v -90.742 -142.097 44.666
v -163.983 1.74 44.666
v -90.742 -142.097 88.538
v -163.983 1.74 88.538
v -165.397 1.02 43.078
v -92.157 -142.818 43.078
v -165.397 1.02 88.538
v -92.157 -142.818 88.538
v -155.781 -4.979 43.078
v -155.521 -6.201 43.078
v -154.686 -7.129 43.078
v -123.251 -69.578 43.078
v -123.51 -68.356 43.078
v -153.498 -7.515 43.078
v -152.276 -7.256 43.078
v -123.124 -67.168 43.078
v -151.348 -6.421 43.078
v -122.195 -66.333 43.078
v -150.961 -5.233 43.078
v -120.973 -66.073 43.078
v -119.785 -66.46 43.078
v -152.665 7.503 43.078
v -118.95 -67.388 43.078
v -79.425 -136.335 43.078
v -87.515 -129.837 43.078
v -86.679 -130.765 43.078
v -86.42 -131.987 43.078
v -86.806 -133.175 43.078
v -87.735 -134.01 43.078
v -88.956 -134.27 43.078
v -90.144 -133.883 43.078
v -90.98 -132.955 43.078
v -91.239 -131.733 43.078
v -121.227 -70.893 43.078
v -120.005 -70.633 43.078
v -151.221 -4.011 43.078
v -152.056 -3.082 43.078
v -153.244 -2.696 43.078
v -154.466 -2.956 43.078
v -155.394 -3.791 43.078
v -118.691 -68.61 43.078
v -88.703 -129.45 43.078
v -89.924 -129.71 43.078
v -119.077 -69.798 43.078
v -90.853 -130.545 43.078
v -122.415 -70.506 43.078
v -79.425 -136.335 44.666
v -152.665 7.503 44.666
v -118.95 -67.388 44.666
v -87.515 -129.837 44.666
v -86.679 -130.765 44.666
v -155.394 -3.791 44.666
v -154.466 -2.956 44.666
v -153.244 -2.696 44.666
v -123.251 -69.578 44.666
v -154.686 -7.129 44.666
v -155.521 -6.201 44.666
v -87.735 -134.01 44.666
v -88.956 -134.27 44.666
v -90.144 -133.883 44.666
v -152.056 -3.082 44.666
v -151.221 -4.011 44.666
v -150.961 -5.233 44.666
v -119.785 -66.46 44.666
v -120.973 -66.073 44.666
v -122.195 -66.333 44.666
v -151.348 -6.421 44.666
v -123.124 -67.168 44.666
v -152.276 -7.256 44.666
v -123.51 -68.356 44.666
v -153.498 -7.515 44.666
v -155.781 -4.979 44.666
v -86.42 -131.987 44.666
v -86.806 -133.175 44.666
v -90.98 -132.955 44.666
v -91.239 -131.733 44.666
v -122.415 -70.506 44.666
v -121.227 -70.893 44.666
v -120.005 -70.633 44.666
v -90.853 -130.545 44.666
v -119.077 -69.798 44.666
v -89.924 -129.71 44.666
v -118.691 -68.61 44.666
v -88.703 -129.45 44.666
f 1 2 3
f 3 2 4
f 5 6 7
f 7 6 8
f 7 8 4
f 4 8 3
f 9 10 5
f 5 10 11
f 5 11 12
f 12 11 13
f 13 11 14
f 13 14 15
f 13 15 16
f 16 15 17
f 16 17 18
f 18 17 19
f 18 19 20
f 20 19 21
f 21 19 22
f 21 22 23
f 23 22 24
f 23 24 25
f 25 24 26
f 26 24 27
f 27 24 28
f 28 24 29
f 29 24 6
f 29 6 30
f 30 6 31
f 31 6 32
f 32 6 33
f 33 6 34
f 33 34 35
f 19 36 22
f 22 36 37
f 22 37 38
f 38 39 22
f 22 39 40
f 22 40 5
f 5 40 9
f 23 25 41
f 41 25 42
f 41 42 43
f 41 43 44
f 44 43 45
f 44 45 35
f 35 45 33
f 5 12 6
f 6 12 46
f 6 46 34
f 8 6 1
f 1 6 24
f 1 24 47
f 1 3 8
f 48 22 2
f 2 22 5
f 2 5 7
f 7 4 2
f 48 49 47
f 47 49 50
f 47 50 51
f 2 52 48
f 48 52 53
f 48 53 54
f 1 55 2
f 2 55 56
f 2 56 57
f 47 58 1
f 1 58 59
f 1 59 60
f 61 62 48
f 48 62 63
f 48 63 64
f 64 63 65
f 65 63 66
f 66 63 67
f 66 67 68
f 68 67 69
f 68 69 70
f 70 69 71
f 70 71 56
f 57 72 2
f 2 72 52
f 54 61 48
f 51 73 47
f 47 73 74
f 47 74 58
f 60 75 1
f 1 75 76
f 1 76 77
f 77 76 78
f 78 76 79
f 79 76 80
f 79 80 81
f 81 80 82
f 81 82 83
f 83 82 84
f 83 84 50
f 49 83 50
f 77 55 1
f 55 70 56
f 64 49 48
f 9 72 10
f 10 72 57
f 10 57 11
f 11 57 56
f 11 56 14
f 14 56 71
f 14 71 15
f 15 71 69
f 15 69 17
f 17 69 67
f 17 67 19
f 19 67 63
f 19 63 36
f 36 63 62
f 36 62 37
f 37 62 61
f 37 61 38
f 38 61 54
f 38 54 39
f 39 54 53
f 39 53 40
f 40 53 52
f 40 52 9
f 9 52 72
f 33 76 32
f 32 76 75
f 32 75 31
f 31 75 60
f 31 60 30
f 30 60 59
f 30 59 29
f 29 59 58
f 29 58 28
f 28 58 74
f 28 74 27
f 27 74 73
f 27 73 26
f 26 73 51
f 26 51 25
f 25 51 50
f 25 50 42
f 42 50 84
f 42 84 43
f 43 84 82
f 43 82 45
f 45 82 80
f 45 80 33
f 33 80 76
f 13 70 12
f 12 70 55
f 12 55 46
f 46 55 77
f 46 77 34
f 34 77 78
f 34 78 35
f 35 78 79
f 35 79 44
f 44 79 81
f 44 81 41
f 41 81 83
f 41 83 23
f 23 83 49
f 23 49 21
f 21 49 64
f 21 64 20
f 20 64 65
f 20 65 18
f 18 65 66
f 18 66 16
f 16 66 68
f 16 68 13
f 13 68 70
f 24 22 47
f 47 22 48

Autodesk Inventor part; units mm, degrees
ref_plane "Work Plane1" through (-105.5469, -33.8995, 0) normal (0, 0, 1) x (1, 0, 0)
sketch "Sketch1" plane through (-105.5469, -33.8995, 0) normal (0, 0, 1) x (1, 0, 0)
  circle A0 centre (51.4164, 20.6909) radius 2.413 projected
  circle A1 centre (61.5426, -29.0897) radius 2.413 projected
  circle A2 centre (41.2902, 70.4714) radius 2.413 projected
  circle A3 centre (71.6688, -78.8702) radius 2.413 projected
  circle A4 centre (27.8827, -36.0288) radius 3.175 projected
  line L0 (21.5564, -145.7309) -> (-91.4082, 76.2381) projected
  line L1 (59.5069, 74.2446) -> (98.755, -118.7966) projected
  line L2 (15.2228, 144.056) -> (44.9436, 105.9012) projected
  line L3 (63.6348, -131.723) -> (58.903, -119.9375) projected
  line L4 (53.0129, -122.3028) -> (57.7447, -134.0883) projected
  arc A5 (3.7348, 135.3868) -> (-79.7406, 82.2913) centre (-35.4587, 104.8391) ccw
  line L5 (3.7348, 135.3868) -> (33.4679, 97.2384)
  arc A6 (45.3974, 71.3204) -> (33.4679, 97.2384) centre (-15.7425, 58.8835) ccw
  line L6 (45.3974, 71.3204) -> (84.6647, -121.7179)
  arc A7 (33.2723, -139.6562) -> (84.6647, -121.7179) centre (57.7489, -127.193) ccw
  arc A8 (2.9524, 134.777) -> (-78.8566, 82.7414) centre (-35.4587, 104.8391) ccw
  line L7 (2.9524, 134.777) -> (32.6855, 96.6286)
  arc A9 (44.4253, 71.1227) -> (32.6855, 96.6286) centre (-15.7425, 58.8835) ccw
  line L8 (44.4253, 71.1227) -> (83.6926, -121.9156)
  arc A10 (34.1563, -139.2061) -> (83.6926, -121.9156) centre (57.7489, -127.193) ccw
  line L9 (34.1563, -139.2061) -> (-78.8566, 82.7414)
  arc A11 (-4.5602, 128.9216) -> (-70.3686, 87.0634) centre (-35.4587, 104.8391) ccw
  line L10 (-4.5602, 128.9216) -> (25.1729, 90.7732)
  arc A12 (35.0915, 69.224) -> (25.1729, 90.7732) centre (-15.7425, 58.8835) ccw
  line L11 (35.0915, 69.224) -> (74.3588, -123.8143)
  arc A13 (42.6443, -134.8841) -> (74.3588, -123.8143) centre (57.7489, -127.193) ccw
  line L12 (42.6443, -134.8841) -> (-70.3686, 87.0634)
  arc A14 (5.4566, 136.7288) -> (-81.686, 81.3007) centre (-35.4587, 104.8391) ccw
  line L13 (5.4566, 136.7288) -> (35.1897, 98.5804)
  arc A15 (47.5366, 71.7556) -> (35.1897, 98.5804) centre (-15.7425, 58.8835) ccw
  line L14 (47.5366, 71.7556) -> (86.8039, -121.2827)
  arc A16 (31.327, -140.6467) -> (86.8039, -121.2827) centre (57.7489, -127.193) ccw
  line L15 (31.327, -140.6467) -> (-81.686, 81.3007)
  circle A17 centre (57.7489, -127.193) radius 44.45
  circle A18 centre (-35.4587, 104.8391) radius 69.85
  circle A19 centre (-47.8242, 28.7936) radius 2.413 projected
  circle A20 centre (-15.5534, -34.5834) radius 2.413 projected
  circle A21 centre (16.7174, -97.9605) radius 2.413 projected
  line L16 (-33.1344, 24.0942) -> (34.7456, 18.5458) projected
  line L17 (36.5081, 12.9323) -> (-6.2049, -22.3208) projected
  line L18 (-20.7511, -20.2117) -> (-39.1333, 15.9083) projected
  line L19 (38.3036, 25.8999) -> (-20.4951, 30.706) projected
  line L20 (-21.5821, 36.7465) -> (30.7819, 61.2351) projected
  line L21 (44.0707, 55.5202) -> (48.097, 35.7165) projected
  line L22 (-53.0081, 43.1715) -> (-61.3301, 59.5239) projected
  line L23 (17.8998, 109.9146) -> (30.1007, 94.2514) projected
  line L24 (27.5547, 68.1378) -> (-5.8444, 52.5185) projected
  line L25 (27.1825, -114.3985) -> (25.3807, -110.8581) projected
  line L26 (32.1964, -96.6363) -> (38.137, -94.5724) projected
  line L27 (74.4344, -93.8236) -> (75.2107, -97.6416) projected
  line L28 (50.495, -96.7953) -> (49.4394, -94.1661) projected
  line L29 (51.3425, -89.9843) -> (60.23, -86.8964) projected
  line L30 (-10.1341, 54.212) -> (-12.6231, 60.4113) projected
  line L31 (-19.6913, 57.573) -> (-16.9128, 50.6526) projected
  line L32 (-18.5132, 46.5938) -> (-35.734, 38.5403) projected
  line L33 (42.124, -96.3889) -> (43.4268, -99.6336) projected
  arc A22 (40.3328, 7.2327) -> (41.7343, 8.6241) centre (33.4597, 15.5569) ccw projected
  arc A23 (45.6191, 9.409) -> (41.7343, 8.6241) centre (44.1679, 6.585) ccw projected
  arc A24 (45.6191, 9.409) -> (50.3997, 8.0475) centre (51.4164, 20.6909) ccw projected
  arc A25 (53.2564, 5.5162) -> (50.3997, 8.0475) centre (50.1452, 4.8827) ccw projected
  line L34 (53.2564, 5.5162) -> (57.2026, -13.8642) projected
  arc A26 (55.534, -17.3261) -> (57.2026, -13.8642) centre (54.0915, -14.4977) ccw projected
  arc A27 (55.534, -17.3261) -> (49.5198, -23.895) centre (61.311, -28.6529) ccw projected
  arc A28 (46.8024, -25.8738) -> (49.5198, -23.895) centre (46.5755, -22.7069) ccw projected
  line L35 (46.8024, -25.8738) -> (37.6772, -26.5277) projected
  arc A29 (35.5367, -25.8944) -> (37.6772, -26.5277) centre (37.4502, -23.3608) ccw projected
  arc A30 (35.5367, -25.8944) -> (18.8618, -27.0893) centre (27.8827, -36.0288) ccw projected
  arc A31 (16.8336, -28.0213) -> (18.8618, -27.0893) centre (16.6066, -24.8545) ccw projected
  line L36 (16.8336, -28.0213) -> (0.7655, -29.1728) projected
  arc A32 (-0.3587, -26.3652) -> (0.7655, -29.1728) centre (0.652, -27.5893) ccw projected
  line L37 (-0.3587, -26.3652) -> (40.3328, 7.2327) projected
  arc A33 (12.0706, -61.7398) -> (8.1483, -51.9706) centre (20.8352, -52.5488) ccw projected
  line L38 (25.9855, -70.6908) -> (17.4507, -83.8024) projected
  line L39 (11.5059, -83.5949) -> (-6.8763, -47.4749) projected
  line L40 (-0.2859, -37.1185) -> (-0.1921, -37.1119) projected
  line L41 (74.8789, -123.628) -> (78.6564, -122.8604) projected
  line L42 (0.38, 132.4063) -> (2.0588, 130.251) projected
  line L43 (38.7029, -137.0353) -> (37.8849, -135.428) projected
  line L44 (38.579, -133.2932) -> (44.3373, -130.3617) projected
  line L45 (12.0706, -61.7398) -> (13.7631, -65.9552) projected
  line L46 (17.8911, -67.7189) -> (22.1428, -66.0115) projected
  line L47 (2.9792, -39.0961) -> (8.1483, -51.9706) projected
  ellipse E0 centre (-34.8429, 105.035) end of major axis (-54.1736, 165.5211) minor radius 63.4728 (15.2228, 144.056) -> (-91.4082, 76.2381) ccw projected
  ellipse E1 centre (58.3238, -127.0129) end of major axis (45.7589, -87.6969) minor radius 41.2573 (21.5564, -145.7309) -> (98.755, -118.7966) ccw projected
  ellipse E2 centre (-15.1352, 59.076) end of major axis (-38.3321, 131.6593) minor radius 76.1674 (59.5069, 74.2446) -> (44.9436, 105.9012) ccw projected
  ellipse E3 centre (-34.8429, 105.035) end of major axis (-38.9507, 117.8883) minor radius 13.488 projected
  ellipse E4 centre (60.6898, -132.9057) end of major axis (59.7232, -129.8814) minor radius 3.1736 (57.7447, -134.0883) -> (63.6348, -131.723) ccw projected
  ellipse E5 centre (55.9579, -121.1202) end of major axis (54.9914, -118.0958) minor radius 3.1736 (58.903, -119.9375) -> (53.0129, -122.3028) ccw projected
  ellipse E6 centre (-47.0283, 29.0524) end of major axis (-50.8944, 41.1496) minor radius 12.6946 (-38.4497, 19.689) -> (-36.1193, 22.5544) ccw projected
  ellipse E7 centre (-33.3921, 20.9299) end of major axis (-34.3586, 23.9542) minor radius 3.1736 (-33.1344, 24.0942) -> (-36.1193, 22.5544) ccw projected
  ellipse E8 centre (34.4879, 15.3814) end of major axis (33.5214, 18.4057) minor radius 3.1736 (36.5081, 12.9323) -> (34.7456, 18.5458) ccw projected
  ellipse E9 centre (-8.2251, -19.8717) end of major axis (-7.2586, -22.896) minor radius 3.1736 (-9.5343, -22.7635) -> (-6.2049, -22.3208) ccw projected
  ellipse E10 centre (-14.7713, -34.3308) end of major axis (-18.6374, -22.2336) minor radius 12.6946 (-9.5343, -22.7635) -> (-17.2925, -21.8836) ccw projected
  ellipse E11 centre (-17.9228, -18.7718) end of major axis (-16.9563, -21.7962) minor radius 3.1736 (-20.7511, -20.2117) -> (-17.2925, -21.8836) ccw projected
  ellipse E12 centre (-36.305, 17.3481) end of major axis (-35.3385, 14.3238) minor radius 3.1736 (-38.4497, 19.689) -> (-39.1333, 15.9083) ccw projected
  ellipse E13 centre (38.5613, 29.0642) end of major axis (39.5278, 26.0399) minor radius 3.1736 (38.3036, 25.8999) -> (41.2885, 27.4397) ccw projected
  ellipse E14 centre (-20.2374, 33.8704) end of major axis (-19.2708, 30.8461) minor radius 3.1736 (-21.5821, 36.7465) -> (-20.4951, 30.706) ccw projected
  ellipse E15 centre (32.1266, 58.3589) end of major axis (31.1601, 61.3832) minor radius 3.1736 (34.1165, 60.8317) -> (30.7819, 61.2351) ccw projected
  ellipse E16 centre (42.0762, 70.723) end of major axis (38.2101, 82.8202) minor radius 12.6946 (34.1165, 60.8317) -> (41.1837, 58.0551) ccw projected
  ellipse E17 centre (40.9606, 54.8882) end of major axis (39.994, 57.9125) minor radius 3.1736 (44.0707, 55.5202) -> (41.1837, 58.0551) ccw projected
  ellipse E18 centre (44.9869, 35.0845) end of major axis (44.0204, 38.1088) minor radius 3.1736 (46.4291, 32.2559) -> (48.097, 35.7165) ccw projected
  ellipse E19 centre (-37.0786, 41.4165) end of major axis (-36.1121, 38.3922) minor radius 3.1736 (-39.0686, 38.9437) -> (-35.734, 38.5403) ccw projected
  ellipse E20 centre (-47.0283, 29.0524) end of major axis (-50.8944, 41.1496) minor radius 12.6946 (-39.0686, 38.9437) -> (-49.5495, 41.4996) ccw projected
  ellipse E21 centre (-50.1798, 44.6113) end of major axis (-49.2133, 41.587) minor radius 3.1736 (-53.0081, 43.1715) -> (-49.5495, 41.4996) ccw projected
  ellipse E22 centre (-58.5019, 60.9637) end of major axis (-57.5353, 57.9394) minor radius 3.1736 (-56.9933, 63.7566) -> (-61.3301, 59.5239) ccw projected
  ellipse E23 centre (-34.666, 105.0915) end of major axis (-48.9707, 149.8513) minor radius 46.9699 (-11.2596, 64.347) -> (12.228, 107.7818) ccw projected
  ellipse E24 centre (15.3966, 107.9636) end of major axis (14.43, 110.9879) minor radius 3.1736 (17.8998, 109.9146) -> (12.228, 107.7818) ccw projected
  ellipse E25 centre (-14.9584, 59.1325) end of major axis (2.4393, 4.6949) minor radius 57.1256 (35.8618, 85.223) -> (30.1007, 94.2514) ccw projected
  ellipse E26 centre (33.0385, 83.7735) end of major axis (32.0719, 86.7978) minor radius 3.1736 (34.846, 81.1634) -> (35.8618, 85.223) ccw projected
  ellipse E27 centre (42.0762, 70.723) end of major axis (38.2101, 82.8202) minor radius 12.6946 (34.846, 81.1634) -> (29.3832, 70.9558) ccw projected
  ellipse E28 centre (26.21, 71.014) end of major axis (25.2435, 74.0383) minor radius 3.1736 (27.5547, 68.1378) -> (29.3832, 70.9558) ccw projected
  ellipse E29 centre (58.5007, -126.9564) end of major axis (49.8019, -99.7376) minor radius 28.5628 (70.7406, -101.1419) -> (53.9461, -98.747) ccw projected
  ellipse E30 centre (30.0108, -112.9586) end of major axis (30.9773, -115.9829) minor radius 3.1736 (27.1825, -114.3985) -> (32.8598, -114.3584) ccw projected
  ellipse E31 centre (28.209, -109.4182) end of major axis (29.1755, -112.4425) minor radius 3.1736 (26.0643, -107.0774) -> (25.3807, -110.8581) ccw projected
  ellipse E32 centre (17.4857, -97.714) end of major axis (21.3519, -109.8112) minor radius 12.6946 (26.0643, -107.0774) -> (30.0878, -99.2512) ccw projected
  ellipse E33 centre (33.2384, -99.6355) end of major axis (34.2049, -102.6598) minor radius 3.1736 (32.1964, -96.6363) -> (30.0878, -99.2512) ccw projected
  ellipse E34 centre (61.272, -89.8956) end of major axis (60.3054, -86.8713) minor radius 3.1736 (63.5056, -87.6406) -> (60.23, -86.8964) ccw projected
  ellipse E35 centre (72.44, -78.6208) end of major axis (68.5739, -66.5236) minor radius 12.6946 (63.5056, -87.6406) -> (71.5475, -91.2887) ccw projected
  ellipse E36 centre (71.3244, -94.4556) end of major axis (70.3578, -91.4313) minor radius 3.1736 (74.4344, -93.8236) -> (71.5475, -91.2887) ccw projected
  ellipse E37 centre (72.1006, -98.2736) end of major axis (73.0671, -101.2979) minor radius 3.1736 (70.7406, -101.1419) -> (75.2107, -97.6416) ccw projected
  ellipse E38 centre (58.5007, -126.9564) end of major axis (49.8019, -99.7376) minor radius 28.5628 (42.2836, -103.4303) -> (32.8598, -114.3584) ccw projected
  ellipse E39 centre (-34.666, 105.0915) end of major axis (-48.9707, 149.8513) minor radius 46.9699 (-56.9933, 63.7566) -> (-23.3977, 59.4727) ccw projected
  ellipse E40 centre (53.44, -95.6126) end of major axis (54.4066, -98.6369) minor radius 3.1736 (50.495, -96.7953) -> (53.9461, -98.747) ccw projected
  ellipse E41 centre (52.3844, -92.9835) end of major axis (53.351, -96.0078) minor radius 3.1736 (51.3425, -89.9843) -> (49.4394, -94.1661) ccw projected
  ellipse E42 centre (-7.1891, 55.3946) end of major axis (-6.2225, 52.3703) minor radius 3.1736 (-10.1341, 54.212) -> (-5.8444, 52.5185) ccw projected
  ellipse E43 centre (-9.6781, 61.594) end of major axis (-8.7115, 58.5697) minor radius 3.1736 (-11.2596, 64.347) -> (-12.6231, 60.4113) ccw projected
  ellipse E44 centre (-19.8578, 49.4699) end of major axis (-20.8244, 52.4943) minor radius 3.1736 (-18.5132, 46.5938) -> (-16.9128, 50.6526) ccw projected
  ellipse E45 centre (-22.6364, 56.3903) end of major axis (-23.6029, 59.4146) minor radius 3.1736 (-19.6913, 57.573) -> (-23.3977, 59.4727) ccw projected
  ellipse E46 centre (39.179, -97.5715) end of major axis (38.2124, -94.5472) minor radius 3.1736 (42.124, -96.3889) -> (38.137, -94.5724) ccw projected
  ellipse E47 centre (40.4817, -100.8163) end of major axis (39.5152, -97.792) minor radius 3.1736 (42.2836, -103.4303) -> (43.4268, -99.6336) ccw projected
  ellipse E48 centre (14.791, -82.0695) end of major axis (15.7575, -85.0938) minor radius 3.1736 (15.3299, -85.1984) -> (17.4507, -83.8024) ccw projected
  ellipse E49 centre (17.4857, -97.714) end of major axis (13.6196, -85.6168) minor radius 12.6946 (15.3299, -85.1984) -> (14.9645, -85.2668) ccw projected
  ellipse E50 centre (14.3342, -82.155) end of major axis (15.3007, -85.1793) minor radius 3.1736 (11.5059, -83.5949) -> (14.9645, -85.2668) ccw projected
  ellipse E51 centre (-4.048, -46.035) end of major axis (-3.0815, -49.0593) minor radius 3.1736 (-6.1927, -43.6942) -> (-6.8763, -47.4749) ccw projected
  ellipse E52 centre (-14.7713, -34.3308) end of major axis (-10.9051, -46.428) minor radius 12.6946 (-6.1927, -43.6942) -> (-3.002, -39.0945) ccw projected
  ellipse E53 centre (-0.0597, -40.2854) end of major axis (-1.0262, -37.2611) minor radius 3.1736 (-0.2859, -37.1185) -> (-3.002, -39.0945) ccw projected
  ellipse E54 centre (-75.9068, 106.3278) end of major axis (-76.8733, 109.3521) minor radius 3.1736 (-73.3969, 108.2703) -> (-79.0792, 106.4229) ccw projected
  ellipse E55 centre (-58.3372, 119.9252) end of major axis (-64.1365, 138.071) minor radius 19.0419 (-73.3969, 108.2703) -> (-70.1692, 105.0022) ccw projected
  ellipse E56 centre (-72.1411, 102.5151) end of major axis (-73.1077, 105.5394) minor radius 3.1736 (-69.8464, 100.3213) -> (-70.1692, 105.0022) ccw projected
  ellipse E57 centre (-56.078, 87.1583) end of major axis (-61.8772, 105.3042) minor radius 19.0419 (-69.8464, 100.3213) -> (-72.5951, 96.6423) ccw projected
  ellipse E58 centre (-75.348, 98.223) end of major axis (-74.3814, 95.1987) minor radius 3.1736 (-78.4773, 97.6947) -> (-72.5951, 96.6423) ccw projected
  ellipse E59 centre (-34.666, 105.0915) end of major axis (-21.1345, 62.7512) minor radius 44.431 (-79.0792, 106.4229) -> (-78.4773, 97.6947) ccw projected
  ellipse E60 centre (-46.2445, 144.7092) end of major axis (-47.211, 147.7336) minor radius 3.1736 (-43.6215, 142.9211) -> (-47.1351, 147.7568) ccw projected
  ellipse E61 centre (-27.8837, 132.1924) end of major axis (-33.6829, 150.3383) minor radius 19.0419 (-43.6215, 142.9211) -> (-45.7303, 138.8412) ccw projected
  ellipse E62 centre (-48.7048, 139.9494) end of major axis (-47.7382, 136.925) minor radius 3.1736 (-50.0809, 137.0888) -> (-45.7303, 138.8412) ccw projected
  ellipse E63 centre (-58.3372, 119.9252) end of major axis (-64.1365, 138.071) minor radius 19.0419 (-50.0809, 137.0888) -> (-54.4286, 138.5679) ccw projected
  ellipse E64 centre (-53.7771, 141.675) end of major axis (-52.8106, 138.6507) minor radius 3.1736 (-55.2472, 144.4891) -> (-54.4286, 138.5679) ccw projected
  ellipse E65 centre (-34.666, 105.0915) end of major axis (-21.1345, 62.7512) minor radius 44.431 (-47.1351, 147.7568) -> (-55.2472, 144.4891) ccw projected
  ellipse E66 centre (78.9727, -124.4161) end of major axis (78.4894, -122.9039) minor radius 1.5868 (80.5474, -124.2206) -> (78.6564, -122.8604) ccw projected
  ellipse E67 centre (58.5007, -126.9564) end of major axis (51.735, -105.7862) minor radius 22.2155 (79.7691, -133.3844) -> (80.5474, -124.2206) ccw projected
  ellipse E68 centre (76.7308, -132.4661) end of major axis (77.6973, -135.4904) minor radius 3.1736 (73.5579, -132.5427) -> (79.7691, -133.3844) ccw projected
  ellipse E69 centre (60.8666, -132.8492) end of major axis (64.7328, -144.9464) minor radius 12.6946 (73.5579, -132.5427) -> (72.5825, -127.9613) ccw projected
  ellipse E70 centre (75.5115, -126.7394) end of major axis (74.545, -123.7151) minor radius 3.1736 (74.8789, -123.628) -> (72.5825, -127.9613) ccw projected
  ellipse E71 centre (-0.4445, 128.2999) end of major axis (0.522, 125.2756) minor radius 3.1736 (-1.3529, 125.2581) -> (2.0588, 130.251) ccw projected
  ellipse E72 centre (-6.8031, 107.0071) end of major axis (-12.6023, 125.153) minor radius 19.0419 (-1.3529, 125.2581) -> (-6.001, 126.0393) ccw projected
  ellipse E73 centre (-5.8673, 129.2113) end of major axis (-4.9008, 126.187) minor radius 3.1736 (-9.0125, 129.6372) -> (-6.001, 126.0393) ccw projected
  ellipse E74 centre (-27.8837, 132.1924) end of major axis (-33.6829, 150.3383) minor radius 19.0419 (-9.0125, 129.6372) -> (-8.9508, 134.2302) ccw projected
  ellipse E75 centre (-5.7954, 134.5699) end of major axis (-6.7619, 137.5942) minor radius 3.1736 (-3.5745, 136.8374) -> (-8.9508, 134.2302) ccw projected
  ellipse E76 centre (-34.666, 105.0915) end of major axis (-21.1345, 62.7512) minor radius 44.431 (0.38, 132.4063) -> (-3.5745, 136.8374) ccw projected
  ellipse E77 centre (39.299, -134.708) end of major axis (39.7823, -136.2202) minor radius 1.5868 (38.579, -133.2932) -> (37.8849, -135.428) ccw projected
  ellipse E78 centre (45.0573, -131.7765) end of major axis (44.5741, -130.2644) minor radius 1.5868 (46.551, -131.2409) -> (44.3373, -130.3617) ccw projected
  ellipse E79 centre (58.5007, -126.9564) end of major axis (54.6346, -114.8592) minor radius 12.6946 (46.551, -131.2409) -> (48.2775, -134.4832) ccw projected
  ellipse E80 centre (60.8666, -132.8492) end of major axis (64.7328, -144.9464) minor radius 12.6946 (48.2775, -134.4832) -> (51.4877, -141.4055) ccw projected
  ellipse E81 centre (49.1429, -143.5446) end of major axis (48.1764, -140.5202) minor radius 3.1736 (47.5833, -146.3092) -> (51.4877, -141.4055) ccw projected
  ellipse E82 centre (58.5007, -126.9564) end of major axis (51.735, -105.7862) minor radius 22.2155 (38.7029, -137.0353) -> (47.5833, -146.3092) ccw projected
  ellipse E83 centre (52.1975, 20.9417) end of major axis (48.3314, 33.0389) minor radius 12.6946 (46.4291, 32.2559) -> (41.2885, 27.4397) ccw projected
  ellipse E84 centre (16.7081, -64.7725) end of major axis (17.6747, -67.7968) minor radius 3.1736 (13.7631, -65.9552) -> (17.8911, -67.7189) ccw projected
  ellipse E85 centre (23.3258, -68.9579) end of major axis (22.3593, -65.9336) minor radius 3.1736 (25.9855, -70.6908) -> (22.1428, -66.0115) ccw projected
  ellipse E86 centre (0.0342, -40.2787) end of major axis (-0.9324, -37.2544) minor radius 3.1736 (2.9792, -39.0961) -> (-0.1921, -37.1119) ccw projected
  ellipse E87 centre (45.8902, -59.8967) end of major axis (44.9237, -56.8724) minor radius 3.1736 (44.7072, -56.9504) -> (43.2305, -58.1638) ccw projected
  line L48 (44.7072, -56.9504) -> (46.8705, -56.0816) projected
  ellipse E88 centre (45.6876, -53.1353) end of major axis (44.721, -50.111) minor radius 3.1736 (46.8705, -56.0816) -> (48.6792, -52.0758) ccw projected
  ellipse E89 centre (51.6707, -51.0164) end of major axis (50.7042, -47.9921) minor radius 3.1736 (49.011, -49.2835) -> (48.6792, -52.0758) ccw projected
  line L49 (49.011, -49.2835) -> (53.8355, -41.872) projected
  line L50 (25.969, -84.6816) -> (43.2305, -58.1638) projected
  ellipse E90 centre (-17.6922, -49.6994) end of major axis (-15.8961, -55.3194) minor radius 5.8975 (-22.8057, -52.6378) -> (-14.6753, -44.6307) ccw projected
  ellipse E91 centre (-17.6417, -49.6706) end of major axis (-16.9644, -51.79) minor radius 2.224 projected
  ellipse E92 centre (56.4952, -43.6049) end of major axis (55.5287, -40.5806) minor radius 3.1736 (57.6599, -40.6518) -> (53.8355, -41.872) ccw projected
  ellipse E93 centre (62.3188, -28.8395) end of major axis (58.4526, -16.7423) minor radius 12.6946 (57.6599, -40.6518) -> (61.4262, -41.5074) ccw projected
  ellipse E94 centre (61.2031, -44.6744) end of major axis (60.2366, -41.6501) minor radius 3.1736 (64.3132, -44.0423) -> (61.4262, -41.5074) ccw projected
  line L51 (64.3132, -44.0423) -> (68.3396, -63.846) projected
  ellipse E95 centre (65.2295, -64.478) end of major axis (64.2629, -61.4537) minor radius 3.1736 (66.6716, -67.3066) -> (68.3396, -63.846) ccw projected
  ellipse E96 centre (72.44, -78.6208) end of major axis (68.5739, -66.5236) minor radius 12.6946 (66.6716, -67.3066) -> (59.8379, -77.0836) ccw projected
  ellipse E97 centre (56.6874, -76.6993) end of major axis (55.7209, -73.675) minor radius 3.1736 (57.7293, -79.6984) -> (59.8379, -77.0836) ccw projected
  line L52 (57.7293, -79.6984) -> (29.6957, -89.4384) projected
  ellipse E98 centre (28.6538, -86.4392) end of major axis (29.6203, -89.4635) minor radius 3.1736 (26.4202, -88.6942) -> (29.6957, -89.4384) ccw projected
  ellipse E99 centre (17.4857, -97.714) end of major axis (21.3519, -109.8112) minor radius 12.6946 (26.4202, -88.6942) -> (26.4002, -88.6744) ccw projected
  ellipse E100 centre (28.6288, -86.4145) end of major axis (27.6622, -83.3902) minor radius 3.1736 (25.969, -84.6816) -> (26.4002, -88.6744) ccw projected
  point P0 (105.5469, 33.8995)
  point P1 (-44.128, 35.5292)
  point P2 (-60.4612, 39.6172)
  point P3 (16.3005, -111.136)
  point P4 (23.999, -98.2664)
  point P5 (-35.4703, 104.8623)
  point P6 (57.7373, -127.1698)
  dimension "d0" = 12.7
  dimension "d1" = 9.525
  dimension "d2" = 88.9
  dimension "d3" = 139.7
ref_plane "Work Plane2" through (-41.9854, -105.2288, 43.0784) normal (0, 0, 1) x (1, 0, 0)
extrude "Extrusion1" add sketch "Sketch1" along normal up to surface (43.0784 mm away) contours L15 E90 L9 A17 | A18 L9 E90 L15 | L9 E90 A18 L12 E6 E12 L18 E11 E10 E52 E51 L39 E50 E49 E48 A17 | L9 E90 | E48 E49 E50 L39 E51 E52 L12 | L12 E10 E11 L18 E12 E6 | A19 | A20 | A21
sketch "Sketch2" plane through (-166.0081, 5.7177, 0) normal (-0.8911282, -0.4537516, 0) x (0, 0, 1)
  spline S0 degree 3 number of poles 454
  line L0 (43.0784, -169.1712) -> (43.0784, 0)
  line L1 (0, 0) -> (43.0784, 0)
  line L2 (0, 0) -> (0, -169.1712)
  line L3 (0, -169.1712) -> (43.0784, -169.1712)
  line L4 (13.1572, -174.2662) -> (29.9212, -174.2662)
  line L5 (13.1572, -174.2662) -> (13.1572, -19.5178)
  line L6 (13.1572, -19.5178) -> (29.9212, -19.5178)
  line L7 (29.9212, -19.5178) -> (29.9212, -174.2662)
  line L8 (13.1572, -19.5178) -> (13.1572, 0)
  line L9 (29.9212, -19.5178) -> (29.9212, 0)
  point P0 (0, -80.4217)
  point P1 (13.1572, -169.1712)
  point P2 (29.9212, -169.1712)
extrude "Extrusion2" cut sketch "Sketch2" against normal blind 3.175 contours L3 L5 L6 L7 | L9 L6 L8 L1
fillet "Fillet1" radius 3.175 5 edges at (-89.2464, -145.0355, 6.5786) (-89.2464, -145.0355, 36.4998) (-81.5478, -132.1659, 21.5392) (-149.6749, 1.6297, 21.5392) (-166.0081, 5.7177, 6.5786)
sketch "Sketch3" plane through (-92.183, -139.2682, 43.0784) normal (0, 0, 1) x (0.8911282, 0.4537516, 0)
  line L0 (6.35, 5.08) -> (6.35, 156.499)
  arc A0 (5.2924, 157.4265) -> (11.3663, 152.5714) centre (51.875, 209.4754) ccw projected
  circle A1 centre (6.35, 5.08) radius 2.413
  arc A2 (0, 0) -> (4.94, -2.6392) centre (3.175, 0) ccw projected
  circle A3 centre (6.35, 76.2) radius 2.413
  circle A4 centre (6.35, 147.32) radius 2.413
  point P0 (145.3401, 82.2776)
  dimension "d9" = 4.826
  dimension "d10" = 5.08
  dimension "d13" = 71.12
ref_plane "Work Plane3" through (-228.5882, -244.5835, 0) normal (0, 0, 1) x (1, 0, 0)
extrude "Extrusion3" cut sketch "Sketch3" against normal up to surface (43.0784 mm away)
thread "Thread1" size "10-24 UNC" class "2B" standard "ANSI Unified Screw Threads" full length
thread "Thread2" size "10-24 UNC" class "2B" standard "ANSI Unified Screw Threads" full length
thread "Thread3" size "10-24 UNC" class "2B" standard "ANSI Unified Screw Threads" full length
sketch "Sketch4" plane through (-148.9216, 0.1502, 43.0784) normal (0.8911282, 0.4537516, 0) x (0, 0, -1)
  line L0 (0, 0) -> (43.0784, 0) projected
  line L1 (0, 0) -> (0, -146.409) projected
  line L2 (43.0784, -146.409) -> (0, -146.409) projected
  line L3 (43.0784, -146.409) -> (43.0784, 0) projected
  line L4 (0, 2.5865) -> (0, 0) projected
  line L5 (0, 0) -> (43.0784, 0) projected
  line L6 (43.0784, 0) -> (43.0784, 2.5865) projected
  line L7 (43.0784, 2.5865) -> (0, 2.5865) projected
  line L8 (13.1572, 5.0759) -> (0, 5.0759) projected
  line L9 (0, 5.0759) -> (0, 7.4417) projected
  line L10 (0, 7.4417) -> (43.0784, 7.4417) projected
  line L11 (43.0784, 7.4417) -> (43.0784, 5.0759) projected
  line L12 (43.0784, 5.0759) -> (29.9212, 5.0759) projected
  line L13 (29.9212, 5.0759) -> (29.9212, 8.2509) projected
  line L14 (29.9212, 8.2509) -> (13.1572, 8.2509) projected
  line L15 (13.1572, 8.2509) -> (13.1572, 5.0759) projected
  line L16 (13.1572, 5.0759) -> (0, 5.0759) projected
  line L17 (0, 7.4417) -> (43.0784, 7.4417) projected
  line L18 (0, 7.4417) -> (0, 2.5865) projected
  line L19 (43.0784, 2.5865) -> (0, 2.5865) projected
  line L20 (43.0784, 2.5865) -> (43.0784, 7.4417) projected
  line L21 (0, -152.624) -> (0, -149.9848) projected
  line L22 (0, -149.9848) -> (13.1572, -149.9848) projected
  line L23 (13.1572, -149.9848) -> (13.1572, -153.1598) projected
  line L24 (13.1572, -153.1598) -> (29.9212, -153.1598) projected
  line L25 (29.9212, -153.1598) -> (29.9212, -149.9848) projected
  line L26 (43.0784, -149.9848) -> (29.9212, -149.9848) projected
  line L27 (43.0784, -149.9848) -> (43.0784, -152.624) projected
  line L28 (43.0784, -152.624) -> (0, -152.624) projected
  line L29 (0, -149.2865) -> (43.0784, -149.2865) projected
  line L30 (0, -149.2865) -> (0, -152.624) projected
  line L31 (43.0784, -152.624) -> (0, -152.624) projected
  line L32 (43.0784, -152.624) -> (43.0784, -149.2865) projected
  line L33 (0, -146.409) -> (0, -149.2865) projected
  line L34 (0, -149.2865) -> (43.0784, -149.2865) projected
  line L35 (43.0784, -149.2865) -> (43.0784, -146.409) projected
  line L36 (43.0784, -146.409) -> (0, -146.409) projected
  line L37 (43.0784, -153.1598) -> (0, -153.1598) projected
  line L38 (0, -152.624) -> (0, -149.9848) projected
  line L39 (0, -149.9848) -> (13.1572, -149.9848) projected
  line L40 (13.1572, -149.9848) -> (13.1572, -153.1598) projected
  line L41 (13.1572, -153.1598) -> (29.9212, -153.1598) projected
  line L42 (29.9212, -153.1598) -> (29.9212, -149.9848) projected
  line L43 (43.0784, -149.9848) -> (29.9212, -149.9848) projected
  line L44 (43.0784, -149.9848) -> (43.0784, -152.624) projected
  line L45 (43.0784, -152.624) -> (0, -152.624) projected
  line L46 (0, -153.1598) -> (43.0784, -153.1598)
  line L47 (43.0784, -153.1598) -> (43.0784, 7.4417)
  line L48 (43.0784, 7.4417) -> (0, 7.4417)
  line L49 (0, 7.4417) -> (0, -153.1598)
  point P0 (43.0784, -67.7072)
sketch "Sketch5" plane through (-92.183, -139.2682, 43.0784) normal (0, 0, 1) x (0.8911282, 0.4537516, 0)
  line L0 (12.7, 149.9848) -> (12.7, 3.5759) projected
  line L1 (3.175, 158.2357) -> (3.175, -3.175) projected
  circle A0 centre (6.35, 147.32) radius 2.413 projected
  circle A1 centre (6.35, 5.08) radius 2.413 projected
  circle A2 centre (6.35, 76.2) radius 2.413 projected
  arc A3 (5.2924, 157.4265) -> (0, 155.0607) centre (3.175, 155.0607) ccw projected
  line L2 (0, 0) -> (0, 155.0607) projected
  arc A4 (0, 0) -> (4.94, -2.6392) centre (3.175, 0) ccw projected
  arc A5 (10.8667, 0.6983) -> (4.94, -2.6392) centre (29.65, -39.5881) ccw projected
  arc A6 (10.8667, 0.6983) -> (12.7, 3.5759) centre (9.525, 3.5759) ccw projected
  line L3 (12.7, 149.9848) -> (12.7, 3.5759) projected
  arc A7 (12.7, 149.9848) -> (11.3663, 152.5714) centre (9.525, 149.9848) ccw projected
  arc A8 (5.2924, 157.4265) -> (11.3663, 152.5714) centre (51.875, 209.4754) ccw projected
  line L4 (0, -3.175) -> (12.7, -3.175)
  line L5 (12.7, -3.175) -> (12.7, 158.2357)
  line L6 (12.7, 158.2357) -> (0, 158.2357)
  line L7 (0, 158.2357) -> (0, -3.175)
  arc A9 (0, 0) -> (4.94, -2.6392) centre (3.175, 0) ccw projected
  arc A10 (5.2924, 157.4265) -> (0, 155.0607) centre (3.175, 155.0607) ccw projected
  line L8 (0, -3.175) -> (-1.5875, -3.175)
  line L9 (-1.5875, -3.175) -> (-1.5875, 158.2357)
  line L10 (-1.5875, 158.2357) -> (0, 158.2357)
  line L11 (0, 158.2357) -> (0, -3.175)
  point P0 (145.3401, 82.2776)
  point P1 (0, 0)
  point P2 (0, 158.2357)
  dimension "d28" = 1.5875
extrude "Extrusion4" add sketch "Sketch5" along normal blind 1.5875 contours L0 A6 A5 A4 L1 A3 A8 A7 | A7 A8 A3 L6 L5 | L5 L4 A4 A5 A6 | L1 A4 L2 A3 | A3 L7 L6 | L4 L7 A4
extrude "Extrusion5" add sketch "Sketch5" along normal blind 45.4596 contours L2 L7 L8 L9 L10
extrude "Extrusion6" cut sketch "Sketch5" against normal blind 43.0784 contours L0 A6 A5 A4 L1 A3 A8 A7 | A7 A8 A3 L6 L5 | L5 L4 A4 A5 A6 | L1 A4 L2 A3 | A3 L7 L6 | L4 L7 A4 | A0 | A1 | A2
properties part number "flat chain guide" material "Polyethylene, High Density"
